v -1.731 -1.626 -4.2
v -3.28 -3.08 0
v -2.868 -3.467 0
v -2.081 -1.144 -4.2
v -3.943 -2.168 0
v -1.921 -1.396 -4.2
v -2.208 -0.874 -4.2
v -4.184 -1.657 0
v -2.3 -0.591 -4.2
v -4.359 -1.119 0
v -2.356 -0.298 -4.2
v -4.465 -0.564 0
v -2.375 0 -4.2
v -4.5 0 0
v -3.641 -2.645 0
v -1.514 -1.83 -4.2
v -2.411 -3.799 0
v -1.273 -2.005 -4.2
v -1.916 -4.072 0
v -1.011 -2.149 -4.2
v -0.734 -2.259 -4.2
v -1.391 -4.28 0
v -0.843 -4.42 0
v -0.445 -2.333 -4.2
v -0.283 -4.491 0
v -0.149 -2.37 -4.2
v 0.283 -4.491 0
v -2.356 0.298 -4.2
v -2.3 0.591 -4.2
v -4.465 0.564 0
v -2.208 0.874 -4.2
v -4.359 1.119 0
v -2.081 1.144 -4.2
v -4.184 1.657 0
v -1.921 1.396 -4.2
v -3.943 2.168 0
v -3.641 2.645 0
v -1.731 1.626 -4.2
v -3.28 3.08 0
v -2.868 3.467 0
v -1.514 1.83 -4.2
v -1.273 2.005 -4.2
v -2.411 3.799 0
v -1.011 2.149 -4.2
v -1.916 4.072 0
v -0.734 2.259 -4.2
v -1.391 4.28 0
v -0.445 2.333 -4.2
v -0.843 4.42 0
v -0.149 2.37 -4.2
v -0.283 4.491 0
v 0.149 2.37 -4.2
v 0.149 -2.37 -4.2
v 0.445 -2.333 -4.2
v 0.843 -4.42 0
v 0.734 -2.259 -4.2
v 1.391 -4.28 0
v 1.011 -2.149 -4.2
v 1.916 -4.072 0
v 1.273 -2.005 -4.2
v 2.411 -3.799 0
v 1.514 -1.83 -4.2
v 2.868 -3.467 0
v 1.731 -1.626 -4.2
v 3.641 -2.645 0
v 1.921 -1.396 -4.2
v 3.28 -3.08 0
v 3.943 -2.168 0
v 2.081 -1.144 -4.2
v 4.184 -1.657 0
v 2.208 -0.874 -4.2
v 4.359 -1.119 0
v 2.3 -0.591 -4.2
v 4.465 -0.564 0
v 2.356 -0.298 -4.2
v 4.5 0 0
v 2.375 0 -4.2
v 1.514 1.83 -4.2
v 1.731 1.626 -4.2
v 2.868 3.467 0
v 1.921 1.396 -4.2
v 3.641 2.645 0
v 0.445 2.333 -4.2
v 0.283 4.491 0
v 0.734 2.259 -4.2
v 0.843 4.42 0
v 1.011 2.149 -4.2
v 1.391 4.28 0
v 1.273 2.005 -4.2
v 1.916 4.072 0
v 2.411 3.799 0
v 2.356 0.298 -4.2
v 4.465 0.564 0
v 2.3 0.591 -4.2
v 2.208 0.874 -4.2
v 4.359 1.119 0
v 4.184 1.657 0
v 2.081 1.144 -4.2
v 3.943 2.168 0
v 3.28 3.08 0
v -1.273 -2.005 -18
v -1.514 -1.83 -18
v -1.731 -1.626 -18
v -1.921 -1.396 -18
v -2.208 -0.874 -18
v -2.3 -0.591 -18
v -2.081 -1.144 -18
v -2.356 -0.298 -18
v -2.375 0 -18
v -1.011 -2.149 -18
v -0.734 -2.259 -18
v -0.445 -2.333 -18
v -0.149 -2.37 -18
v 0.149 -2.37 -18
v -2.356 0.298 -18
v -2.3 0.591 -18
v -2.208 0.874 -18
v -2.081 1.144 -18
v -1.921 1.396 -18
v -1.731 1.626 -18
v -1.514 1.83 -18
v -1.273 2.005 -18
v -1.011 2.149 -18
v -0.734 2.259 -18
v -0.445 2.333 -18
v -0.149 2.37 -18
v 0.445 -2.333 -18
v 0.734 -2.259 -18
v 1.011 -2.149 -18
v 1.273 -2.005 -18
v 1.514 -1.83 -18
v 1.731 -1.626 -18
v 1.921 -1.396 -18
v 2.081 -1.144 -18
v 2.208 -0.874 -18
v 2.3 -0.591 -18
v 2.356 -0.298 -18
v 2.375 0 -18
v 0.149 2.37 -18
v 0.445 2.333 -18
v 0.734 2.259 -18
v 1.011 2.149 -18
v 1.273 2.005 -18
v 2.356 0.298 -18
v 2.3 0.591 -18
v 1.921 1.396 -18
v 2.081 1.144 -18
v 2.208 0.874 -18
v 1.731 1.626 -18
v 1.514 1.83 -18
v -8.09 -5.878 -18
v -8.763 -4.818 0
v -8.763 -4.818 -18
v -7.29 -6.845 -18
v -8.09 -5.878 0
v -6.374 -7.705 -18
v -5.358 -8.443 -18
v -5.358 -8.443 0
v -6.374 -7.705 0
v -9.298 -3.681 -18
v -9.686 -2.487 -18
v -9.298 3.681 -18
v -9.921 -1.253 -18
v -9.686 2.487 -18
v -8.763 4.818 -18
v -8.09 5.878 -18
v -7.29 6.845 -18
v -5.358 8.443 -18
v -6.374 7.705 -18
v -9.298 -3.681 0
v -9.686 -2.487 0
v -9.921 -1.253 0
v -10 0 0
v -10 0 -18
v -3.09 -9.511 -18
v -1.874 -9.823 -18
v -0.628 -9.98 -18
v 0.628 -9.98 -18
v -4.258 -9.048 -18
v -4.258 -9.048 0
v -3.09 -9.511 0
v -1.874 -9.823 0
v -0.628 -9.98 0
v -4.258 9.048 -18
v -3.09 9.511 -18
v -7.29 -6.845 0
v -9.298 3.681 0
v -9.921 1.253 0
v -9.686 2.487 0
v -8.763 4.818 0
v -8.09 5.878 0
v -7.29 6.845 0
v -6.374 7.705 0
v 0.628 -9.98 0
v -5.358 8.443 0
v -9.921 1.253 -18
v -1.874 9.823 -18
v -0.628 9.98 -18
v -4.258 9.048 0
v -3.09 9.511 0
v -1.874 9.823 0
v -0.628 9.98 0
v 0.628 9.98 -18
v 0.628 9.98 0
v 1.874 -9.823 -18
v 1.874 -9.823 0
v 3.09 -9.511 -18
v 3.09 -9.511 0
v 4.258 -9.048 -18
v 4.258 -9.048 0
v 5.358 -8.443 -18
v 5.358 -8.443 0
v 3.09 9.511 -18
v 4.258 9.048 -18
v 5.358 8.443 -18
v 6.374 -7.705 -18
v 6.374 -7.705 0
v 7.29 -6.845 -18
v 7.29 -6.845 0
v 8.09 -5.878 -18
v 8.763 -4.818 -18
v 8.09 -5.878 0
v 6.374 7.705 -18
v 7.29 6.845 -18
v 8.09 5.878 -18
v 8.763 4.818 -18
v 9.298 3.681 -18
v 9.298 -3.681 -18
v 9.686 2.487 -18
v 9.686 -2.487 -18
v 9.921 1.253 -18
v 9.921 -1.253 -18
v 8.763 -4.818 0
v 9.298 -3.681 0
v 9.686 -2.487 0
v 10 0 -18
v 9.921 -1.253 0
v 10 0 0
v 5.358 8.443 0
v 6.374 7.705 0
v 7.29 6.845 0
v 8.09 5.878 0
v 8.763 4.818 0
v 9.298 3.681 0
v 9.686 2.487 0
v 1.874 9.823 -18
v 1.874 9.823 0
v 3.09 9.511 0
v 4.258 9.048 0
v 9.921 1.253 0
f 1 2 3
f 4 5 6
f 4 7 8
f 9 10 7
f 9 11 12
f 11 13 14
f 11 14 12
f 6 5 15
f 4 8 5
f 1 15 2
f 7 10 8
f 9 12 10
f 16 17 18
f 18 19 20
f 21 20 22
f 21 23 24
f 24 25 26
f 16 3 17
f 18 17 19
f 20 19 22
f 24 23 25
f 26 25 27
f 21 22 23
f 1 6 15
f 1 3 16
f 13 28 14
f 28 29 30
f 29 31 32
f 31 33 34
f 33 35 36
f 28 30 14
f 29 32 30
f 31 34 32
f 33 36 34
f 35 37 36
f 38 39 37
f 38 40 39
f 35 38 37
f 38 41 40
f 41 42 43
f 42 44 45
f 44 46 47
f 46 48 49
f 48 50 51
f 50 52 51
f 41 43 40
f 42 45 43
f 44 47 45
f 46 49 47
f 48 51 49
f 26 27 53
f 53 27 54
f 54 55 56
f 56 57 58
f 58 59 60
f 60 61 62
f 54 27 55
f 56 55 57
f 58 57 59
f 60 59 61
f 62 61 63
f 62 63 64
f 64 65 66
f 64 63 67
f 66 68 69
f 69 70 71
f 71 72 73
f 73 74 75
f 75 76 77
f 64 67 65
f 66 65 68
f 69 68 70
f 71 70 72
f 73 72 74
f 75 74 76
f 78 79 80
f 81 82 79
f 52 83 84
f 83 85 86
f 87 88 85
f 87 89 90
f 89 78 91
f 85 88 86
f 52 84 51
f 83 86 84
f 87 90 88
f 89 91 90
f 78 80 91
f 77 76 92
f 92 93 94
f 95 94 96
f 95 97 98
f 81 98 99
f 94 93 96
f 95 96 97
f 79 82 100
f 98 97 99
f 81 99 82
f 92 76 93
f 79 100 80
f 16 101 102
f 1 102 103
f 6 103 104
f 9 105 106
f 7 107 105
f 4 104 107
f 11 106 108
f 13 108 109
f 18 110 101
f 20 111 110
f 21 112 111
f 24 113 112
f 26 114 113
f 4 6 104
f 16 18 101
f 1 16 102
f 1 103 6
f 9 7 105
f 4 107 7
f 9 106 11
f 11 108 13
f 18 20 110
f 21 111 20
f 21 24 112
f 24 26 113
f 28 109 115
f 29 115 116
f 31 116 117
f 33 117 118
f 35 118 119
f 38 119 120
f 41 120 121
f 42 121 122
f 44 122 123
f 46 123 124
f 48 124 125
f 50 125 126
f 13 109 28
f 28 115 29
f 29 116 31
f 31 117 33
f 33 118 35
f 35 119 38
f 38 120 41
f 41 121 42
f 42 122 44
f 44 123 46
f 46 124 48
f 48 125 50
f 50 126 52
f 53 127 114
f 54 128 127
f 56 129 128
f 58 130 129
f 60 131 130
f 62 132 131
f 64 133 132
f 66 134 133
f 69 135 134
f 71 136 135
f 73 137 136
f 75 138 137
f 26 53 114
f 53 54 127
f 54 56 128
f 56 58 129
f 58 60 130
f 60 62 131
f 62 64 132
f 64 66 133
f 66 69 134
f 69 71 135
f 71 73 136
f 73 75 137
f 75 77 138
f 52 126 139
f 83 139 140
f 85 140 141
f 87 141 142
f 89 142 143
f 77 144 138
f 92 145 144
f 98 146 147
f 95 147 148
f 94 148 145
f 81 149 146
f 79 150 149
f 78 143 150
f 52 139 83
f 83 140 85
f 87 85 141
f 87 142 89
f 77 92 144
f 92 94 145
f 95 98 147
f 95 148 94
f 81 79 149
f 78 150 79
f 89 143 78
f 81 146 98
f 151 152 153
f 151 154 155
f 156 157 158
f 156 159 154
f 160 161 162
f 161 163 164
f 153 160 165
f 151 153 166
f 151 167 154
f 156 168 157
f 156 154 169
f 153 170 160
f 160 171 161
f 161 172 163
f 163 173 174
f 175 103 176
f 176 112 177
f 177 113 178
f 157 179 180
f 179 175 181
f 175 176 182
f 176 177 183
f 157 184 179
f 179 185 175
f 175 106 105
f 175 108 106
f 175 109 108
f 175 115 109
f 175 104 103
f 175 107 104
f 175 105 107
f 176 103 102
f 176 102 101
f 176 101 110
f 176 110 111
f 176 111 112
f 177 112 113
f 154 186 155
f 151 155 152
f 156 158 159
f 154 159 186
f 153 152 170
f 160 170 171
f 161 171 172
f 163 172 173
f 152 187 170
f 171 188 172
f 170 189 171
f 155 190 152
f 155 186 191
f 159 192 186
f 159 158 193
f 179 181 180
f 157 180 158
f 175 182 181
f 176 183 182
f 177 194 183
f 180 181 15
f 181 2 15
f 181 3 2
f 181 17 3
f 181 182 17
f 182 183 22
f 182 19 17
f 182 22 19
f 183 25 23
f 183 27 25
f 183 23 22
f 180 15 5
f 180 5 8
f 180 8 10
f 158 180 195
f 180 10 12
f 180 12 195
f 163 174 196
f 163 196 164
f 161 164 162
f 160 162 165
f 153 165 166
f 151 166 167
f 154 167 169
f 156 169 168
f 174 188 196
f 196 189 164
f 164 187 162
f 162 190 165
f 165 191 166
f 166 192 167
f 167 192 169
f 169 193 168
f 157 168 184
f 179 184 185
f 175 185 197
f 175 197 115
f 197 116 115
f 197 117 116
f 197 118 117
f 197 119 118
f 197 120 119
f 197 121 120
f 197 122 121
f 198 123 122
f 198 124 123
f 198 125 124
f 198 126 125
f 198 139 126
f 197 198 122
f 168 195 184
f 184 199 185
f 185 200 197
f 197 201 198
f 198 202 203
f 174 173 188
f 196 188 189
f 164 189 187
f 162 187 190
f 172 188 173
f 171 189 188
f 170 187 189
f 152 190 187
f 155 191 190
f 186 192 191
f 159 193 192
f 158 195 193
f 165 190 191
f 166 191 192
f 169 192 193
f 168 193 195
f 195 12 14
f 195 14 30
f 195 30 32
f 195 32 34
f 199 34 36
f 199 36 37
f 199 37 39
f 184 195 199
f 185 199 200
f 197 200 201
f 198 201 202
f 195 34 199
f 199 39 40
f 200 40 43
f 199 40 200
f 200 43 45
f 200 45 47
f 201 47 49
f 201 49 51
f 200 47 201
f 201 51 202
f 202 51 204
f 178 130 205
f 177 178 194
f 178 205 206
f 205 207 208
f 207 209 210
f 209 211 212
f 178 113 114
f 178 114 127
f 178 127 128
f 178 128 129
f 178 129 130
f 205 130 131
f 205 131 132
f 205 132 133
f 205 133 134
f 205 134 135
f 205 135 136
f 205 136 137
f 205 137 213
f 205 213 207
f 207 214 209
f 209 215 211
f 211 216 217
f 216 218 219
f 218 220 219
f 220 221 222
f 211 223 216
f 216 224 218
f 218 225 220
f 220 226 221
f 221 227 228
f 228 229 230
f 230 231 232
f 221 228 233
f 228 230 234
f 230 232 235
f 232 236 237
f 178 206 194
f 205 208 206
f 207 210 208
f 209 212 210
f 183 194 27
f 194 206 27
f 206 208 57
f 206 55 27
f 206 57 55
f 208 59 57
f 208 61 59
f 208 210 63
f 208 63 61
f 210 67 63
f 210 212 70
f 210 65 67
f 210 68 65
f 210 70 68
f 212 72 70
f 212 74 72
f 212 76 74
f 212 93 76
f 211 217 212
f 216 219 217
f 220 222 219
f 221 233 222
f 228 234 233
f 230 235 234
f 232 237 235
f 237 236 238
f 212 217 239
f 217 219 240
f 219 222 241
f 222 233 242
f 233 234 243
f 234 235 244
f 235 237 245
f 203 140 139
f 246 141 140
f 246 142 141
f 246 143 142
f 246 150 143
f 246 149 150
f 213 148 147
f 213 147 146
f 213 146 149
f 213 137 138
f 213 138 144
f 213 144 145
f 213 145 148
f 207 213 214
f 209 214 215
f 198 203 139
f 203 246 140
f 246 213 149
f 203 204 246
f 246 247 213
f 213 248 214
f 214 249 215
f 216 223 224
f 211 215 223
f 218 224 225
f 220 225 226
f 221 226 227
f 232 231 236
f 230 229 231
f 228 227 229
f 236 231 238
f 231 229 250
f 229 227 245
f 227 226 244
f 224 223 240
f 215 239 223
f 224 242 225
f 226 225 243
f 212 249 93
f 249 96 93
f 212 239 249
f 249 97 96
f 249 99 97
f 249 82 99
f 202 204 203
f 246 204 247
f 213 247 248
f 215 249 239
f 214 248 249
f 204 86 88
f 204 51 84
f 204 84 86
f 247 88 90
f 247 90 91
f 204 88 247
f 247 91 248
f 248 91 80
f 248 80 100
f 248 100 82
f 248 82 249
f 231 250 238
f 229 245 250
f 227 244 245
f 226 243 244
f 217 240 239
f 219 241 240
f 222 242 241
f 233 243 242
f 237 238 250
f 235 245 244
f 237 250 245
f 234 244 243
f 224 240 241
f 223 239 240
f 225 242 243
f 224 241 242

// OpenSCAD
$fn = 50;

difference() {
	union() {
		translate(v = [0, 0, -18.0]) {
			cylinder(h = 18, r = 10.0);
		}
	}
	union() {
		translate(v = [0, 0, 0]) {
			rotate(a = [0, 0, 0]) {
				difference() {
					union() {
						translate(v = [0, 0, -21.0]) {
							cylinder(h = 21, r = 2.25);
						}
						translate(v = [0, 0, -4.2]) {
							cylinder(h = 4.2, r1 = 2.375, r2 = 4.5);
						}
						translate(v = [0, 0, -21.0]) {
							cylinder(h = 21, r = 2.375);
						}
						translate(v = [0, 0, -21.0]) {
							cylinder(h = 21, r = 2.25);
						}
					}
					union();
				}
			}
		}
	}
}
